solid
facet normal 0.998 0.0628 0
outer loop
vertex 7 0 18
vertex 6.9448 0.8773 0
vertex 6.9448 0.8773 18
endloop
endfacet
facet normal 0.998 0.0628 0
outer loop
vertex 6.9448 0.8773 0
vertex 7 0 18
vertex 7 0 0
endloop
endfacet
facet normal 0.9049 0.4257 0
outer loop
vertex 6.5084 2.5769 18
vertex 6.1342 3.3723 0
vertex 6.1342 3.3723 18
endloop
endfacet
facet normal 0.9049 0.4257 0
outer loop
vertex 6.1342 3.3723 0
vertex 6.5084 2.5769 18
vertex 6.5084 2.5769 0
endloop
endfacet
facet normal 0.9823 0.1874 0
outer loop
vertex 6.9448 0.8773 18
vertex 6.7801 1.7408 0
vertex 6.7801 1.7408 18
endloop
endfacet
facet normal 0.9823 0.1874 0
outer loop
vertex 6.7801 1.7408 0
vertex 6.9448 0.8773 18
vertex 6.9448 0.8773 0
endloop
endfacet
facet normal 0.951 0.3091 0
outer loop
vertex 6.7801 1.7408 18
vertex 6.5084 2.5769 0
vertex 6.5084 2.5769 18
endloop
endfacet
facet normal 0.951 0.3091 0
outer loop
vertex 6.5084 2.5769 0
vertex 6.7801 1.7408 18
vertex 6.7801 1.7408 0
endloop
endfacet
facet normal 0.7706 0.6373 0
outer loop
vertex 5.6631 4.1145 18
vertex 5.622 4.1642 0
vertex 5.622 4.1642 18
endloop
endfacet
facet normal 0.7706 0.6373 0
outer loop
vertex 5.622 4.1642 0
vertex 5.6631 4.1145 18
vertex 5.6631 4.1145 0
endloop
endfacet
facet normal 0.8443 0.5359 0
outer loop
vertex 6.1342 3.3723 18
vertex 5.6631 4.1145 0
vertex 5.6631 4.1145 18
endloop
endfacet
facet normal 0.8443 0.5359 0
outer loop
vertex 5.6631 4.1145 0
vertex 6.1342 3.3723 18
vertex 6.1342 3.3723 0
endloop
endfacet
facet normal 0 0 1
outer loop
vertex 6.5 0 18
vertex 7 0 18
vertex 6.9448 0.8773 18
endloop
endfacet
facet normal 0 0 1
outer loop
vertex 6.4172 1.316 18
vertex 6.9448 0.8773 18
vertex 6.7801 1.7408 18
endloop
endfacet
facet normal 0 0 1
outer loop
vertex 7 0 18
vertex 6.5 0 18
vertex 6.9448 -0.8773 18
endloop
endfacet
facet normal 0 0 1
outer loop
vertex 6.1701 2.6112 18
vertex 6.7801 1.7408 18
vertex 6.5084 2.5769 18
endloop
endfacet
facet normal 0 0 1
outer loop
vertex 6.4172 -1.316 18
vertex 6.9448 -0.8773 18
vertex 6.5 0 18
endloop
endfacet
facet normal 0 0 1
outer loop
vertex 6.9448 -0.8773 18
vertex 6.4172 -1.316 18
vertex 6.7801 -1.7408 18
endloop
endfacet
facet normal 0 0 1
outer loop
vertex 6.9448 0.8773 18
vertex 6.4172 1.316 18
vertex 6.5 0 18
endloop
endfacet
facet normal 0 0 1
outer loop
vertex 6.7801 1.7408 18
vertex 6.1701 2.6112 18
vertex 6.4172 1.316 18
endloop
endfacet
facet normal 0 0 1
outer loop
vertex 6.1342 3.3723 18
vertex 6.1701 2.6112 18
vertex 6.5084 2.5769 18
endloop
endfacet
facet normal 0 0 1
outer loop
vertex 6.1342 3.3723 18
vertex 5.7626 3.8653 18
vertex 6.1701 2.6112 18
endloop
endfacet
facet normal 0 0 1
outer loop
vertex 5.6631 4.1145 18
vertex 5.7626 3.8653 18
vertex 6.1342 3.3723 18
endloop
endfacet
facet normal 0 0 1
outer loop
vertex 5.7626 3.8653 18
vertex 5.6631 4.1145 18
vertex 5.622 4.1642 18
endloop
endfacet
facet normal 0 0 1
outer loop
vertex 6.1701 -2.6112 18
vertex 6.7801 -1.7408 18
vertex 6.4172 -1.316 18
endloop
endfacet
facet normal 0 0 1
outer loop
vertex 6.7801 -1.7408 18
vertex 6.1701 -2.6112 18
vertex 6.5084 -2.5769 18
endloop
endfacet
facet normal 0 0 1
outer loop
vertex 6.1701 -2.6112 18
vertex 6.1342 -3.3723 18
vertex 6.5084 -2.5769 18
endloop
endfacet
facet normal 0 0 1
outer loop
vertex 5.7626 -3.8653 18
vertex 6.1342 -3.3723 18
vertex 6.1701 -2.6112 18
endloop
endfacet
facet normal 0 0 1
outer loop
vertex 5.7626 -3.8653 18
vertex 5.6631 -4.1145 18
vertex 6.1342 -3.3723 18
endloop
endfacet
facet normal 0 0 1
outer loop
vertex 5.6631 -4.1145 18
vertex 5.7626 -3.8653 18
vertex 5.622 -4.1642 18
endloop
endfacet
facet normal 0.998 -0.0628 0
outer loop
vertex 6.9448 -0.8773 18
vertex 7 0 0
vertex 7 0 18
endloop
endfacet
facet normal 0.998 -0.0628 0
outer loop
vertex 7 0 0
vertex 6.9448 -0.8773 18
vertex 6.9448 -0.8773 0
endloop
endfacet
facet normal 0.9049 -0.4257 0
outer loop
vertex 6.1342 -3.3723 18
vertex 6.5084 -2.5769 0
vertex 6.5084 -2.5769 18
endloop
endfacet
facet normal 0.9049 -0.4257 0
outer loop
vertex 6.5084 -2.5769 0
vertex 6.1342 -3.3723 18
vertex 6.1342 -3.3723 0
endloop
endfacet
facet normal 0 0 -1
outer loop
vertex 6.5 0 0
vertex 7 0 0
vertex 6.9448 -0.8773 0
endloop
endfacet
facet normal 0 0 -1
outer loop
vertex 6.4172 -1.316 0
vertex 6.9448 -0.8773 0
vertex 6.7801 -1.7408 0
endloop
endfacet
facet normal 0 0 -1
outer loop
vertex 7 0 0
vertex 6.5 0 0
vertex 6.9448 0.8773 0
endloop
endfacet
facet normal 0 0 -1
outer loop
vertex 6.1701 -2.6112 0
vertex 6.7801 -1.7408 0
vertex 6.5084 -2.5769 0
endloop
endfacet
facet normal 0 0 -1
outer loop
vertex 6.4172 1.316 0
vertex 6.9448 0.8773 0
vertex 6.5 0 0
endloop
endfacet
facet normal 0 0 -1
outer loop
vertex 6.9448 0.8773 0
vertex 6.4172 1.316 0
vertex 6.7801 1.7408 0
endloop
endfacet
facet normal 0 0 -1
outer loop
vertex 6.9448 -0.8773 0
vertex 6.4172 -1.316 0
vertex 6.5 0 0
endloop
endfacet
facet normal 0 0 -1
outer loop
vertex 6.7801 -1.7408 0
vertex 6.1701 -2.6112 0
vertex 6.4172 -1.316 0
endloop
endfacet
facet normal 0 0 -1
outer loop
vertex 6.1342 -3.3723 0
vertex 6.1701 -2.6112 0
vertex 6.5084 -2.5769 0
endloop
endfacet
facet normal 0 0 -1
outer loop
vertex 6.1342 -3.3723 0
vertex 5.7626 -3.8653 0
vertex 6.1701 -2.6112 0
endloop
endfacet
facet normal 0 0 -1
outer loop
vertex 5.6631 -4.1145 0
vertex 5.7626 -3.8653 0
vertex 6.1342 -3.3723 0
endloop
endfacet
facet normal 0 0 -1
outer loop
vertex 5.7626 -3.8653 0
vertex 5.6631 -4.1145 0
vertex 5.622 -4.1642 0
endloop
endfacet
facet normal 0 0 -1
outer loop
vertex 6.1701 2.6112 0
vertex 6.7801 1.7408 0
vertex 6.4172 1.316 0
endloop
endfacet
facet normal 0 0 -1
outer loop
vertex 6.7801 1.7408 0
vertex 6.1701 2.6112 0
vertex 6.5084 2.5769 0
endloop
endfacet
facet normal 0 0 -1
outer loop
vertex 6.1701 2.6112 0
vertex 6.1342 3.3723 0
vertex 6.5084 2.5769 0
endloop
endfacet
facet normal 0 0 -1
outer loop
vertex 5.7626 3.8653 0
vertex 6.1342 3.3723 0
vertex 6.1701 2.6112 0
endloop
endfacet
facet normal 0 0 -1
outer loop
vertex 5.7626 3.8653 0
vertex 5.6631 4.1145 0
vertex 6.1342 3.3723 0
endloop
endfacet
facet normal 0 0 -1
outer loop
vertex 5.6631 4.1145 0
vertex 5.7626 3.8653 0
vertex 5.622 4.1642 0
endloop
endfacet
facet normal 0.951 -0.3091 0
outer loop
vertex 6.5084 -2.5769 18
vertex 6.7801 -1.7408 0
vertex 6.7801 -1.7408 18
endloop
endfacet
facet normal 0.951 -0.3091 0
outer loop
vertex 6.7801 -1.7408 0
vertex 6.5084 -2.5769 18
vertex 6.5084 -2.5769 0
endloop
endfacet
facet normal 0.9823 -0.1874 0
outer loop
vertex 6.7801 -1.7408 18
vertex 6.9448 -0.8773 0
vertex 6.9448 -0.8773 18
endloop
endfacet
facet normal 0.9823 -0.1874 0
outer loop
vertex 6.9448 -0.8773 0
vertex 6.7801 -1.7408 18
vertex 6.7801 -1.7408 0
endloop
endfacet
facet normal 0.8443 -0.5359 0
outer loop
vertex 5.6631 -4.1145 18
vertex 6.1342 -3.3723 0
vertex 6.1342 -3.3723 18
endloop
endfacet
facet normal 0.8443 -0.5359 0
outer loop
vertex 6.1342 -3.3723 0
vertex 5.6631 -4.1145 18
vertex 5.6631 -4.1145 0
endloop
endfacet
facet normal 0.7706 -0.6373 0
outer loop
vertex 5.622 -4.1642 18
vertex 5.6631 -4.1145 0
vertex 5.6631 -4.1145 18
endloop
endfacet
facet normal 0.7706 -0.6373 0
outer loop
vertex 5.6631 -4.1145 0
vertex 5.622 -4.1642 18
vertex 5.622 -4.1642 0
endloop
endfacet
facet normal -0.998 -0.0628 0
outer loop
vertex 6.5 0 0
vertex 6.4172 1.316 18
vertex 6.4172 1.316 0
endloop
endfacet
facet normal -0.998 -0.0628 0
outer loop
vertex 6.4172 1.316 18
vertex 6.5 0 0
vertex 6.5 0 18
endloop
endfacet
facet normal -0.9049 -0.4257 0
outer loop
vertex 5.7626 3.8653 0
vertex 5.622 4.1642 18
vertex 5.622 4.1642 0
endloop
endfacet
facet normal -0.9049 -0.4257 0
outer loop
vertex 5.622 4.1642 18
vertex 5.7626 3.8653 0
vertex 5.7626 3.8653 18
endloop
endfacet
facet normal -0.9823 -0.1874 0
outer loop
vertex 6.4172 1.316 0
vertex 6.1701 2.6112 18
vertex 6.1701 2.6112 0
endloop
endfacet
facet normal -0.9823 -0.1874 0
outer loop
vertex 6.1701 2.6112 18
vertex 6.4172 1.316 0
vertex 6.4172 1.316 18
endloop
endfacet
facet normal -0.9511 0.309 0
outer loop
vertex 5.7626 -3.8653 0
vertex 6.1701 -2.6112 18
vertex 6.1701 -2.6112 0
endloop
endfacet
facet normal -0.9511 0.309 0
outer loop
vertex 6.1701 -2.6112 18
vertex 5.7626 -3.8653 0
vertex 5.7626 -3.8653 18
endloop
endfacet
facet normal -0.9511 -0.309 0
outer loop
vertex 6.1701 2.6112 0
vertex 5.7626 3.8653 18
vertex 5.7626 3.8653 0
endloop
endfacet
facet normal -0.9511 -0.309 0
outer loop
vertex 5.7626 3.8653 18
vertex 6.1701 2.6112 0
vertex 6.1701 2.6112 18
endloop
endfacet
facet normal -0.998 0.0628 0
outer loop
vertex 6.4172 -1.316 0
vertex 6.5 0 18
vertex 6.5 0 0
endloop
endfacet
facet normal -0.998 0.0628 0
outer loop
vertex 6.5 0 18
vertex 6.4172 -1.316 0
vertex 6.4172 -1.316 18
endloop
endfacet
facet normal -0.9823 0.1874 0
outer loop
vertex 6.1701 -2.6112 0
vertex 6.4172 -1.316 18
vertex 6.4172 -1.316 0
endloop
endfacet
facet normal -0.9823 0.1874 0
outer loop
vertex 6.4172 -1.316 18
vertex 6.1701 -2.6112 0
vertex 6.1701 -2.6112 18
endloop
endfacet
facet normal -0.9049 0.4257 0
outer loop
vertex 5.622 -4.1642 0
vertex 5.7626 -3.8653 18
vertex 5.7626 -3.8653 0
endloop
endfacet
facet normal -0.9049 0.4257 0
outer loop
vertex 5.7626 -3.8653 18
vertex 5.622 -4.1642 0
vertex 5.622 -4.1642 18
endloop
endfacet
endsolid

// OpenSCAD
$fn = 50;


difference() {
	union() {
		cylinder(h = 18, r = 7.0000000000);
		translate(v = [-7.0000000000, 0, 0]) {
			cylinder(h = 18, r = 7.0000000000);
		}
	}
	union() {
		cylinder(h = 18, r = 3.2500000000);
		cylinder(h = 18, r = 1.8000000000);
		cylinder(h = 18, r = 1.8000000000);
		cylinder(h = 18, r = 1.8000000000);
		translate(v = [-11.5000000000, 0, 0]) {
			hull() {
				translate(v = [-3.7500000000, 0.0000000000, 0]) {
					cylinder(h = 18, r = 7.5000000000);
				}
				translate(v = [3.7500000000, 0.0000000000, 0]) {
					cylinder(h = 18, r = 7.5000000000);
				}
				translate(v = [-3.7500000000, -0.0000000000, 0]) {
					cylinder(h = 18, r = 7.5000000000);
				}
				translate(v = [3.7500000000, -0.0000000000, 0]) {
					cylinder(h = 18, r = 7.5000000000);
				}
			}
		}
		translate(v = [-4.0000000000, 0, 0.0000000000]) {
			cylinder(h = 18, r = 10.5000000000);
		}
	}
}
